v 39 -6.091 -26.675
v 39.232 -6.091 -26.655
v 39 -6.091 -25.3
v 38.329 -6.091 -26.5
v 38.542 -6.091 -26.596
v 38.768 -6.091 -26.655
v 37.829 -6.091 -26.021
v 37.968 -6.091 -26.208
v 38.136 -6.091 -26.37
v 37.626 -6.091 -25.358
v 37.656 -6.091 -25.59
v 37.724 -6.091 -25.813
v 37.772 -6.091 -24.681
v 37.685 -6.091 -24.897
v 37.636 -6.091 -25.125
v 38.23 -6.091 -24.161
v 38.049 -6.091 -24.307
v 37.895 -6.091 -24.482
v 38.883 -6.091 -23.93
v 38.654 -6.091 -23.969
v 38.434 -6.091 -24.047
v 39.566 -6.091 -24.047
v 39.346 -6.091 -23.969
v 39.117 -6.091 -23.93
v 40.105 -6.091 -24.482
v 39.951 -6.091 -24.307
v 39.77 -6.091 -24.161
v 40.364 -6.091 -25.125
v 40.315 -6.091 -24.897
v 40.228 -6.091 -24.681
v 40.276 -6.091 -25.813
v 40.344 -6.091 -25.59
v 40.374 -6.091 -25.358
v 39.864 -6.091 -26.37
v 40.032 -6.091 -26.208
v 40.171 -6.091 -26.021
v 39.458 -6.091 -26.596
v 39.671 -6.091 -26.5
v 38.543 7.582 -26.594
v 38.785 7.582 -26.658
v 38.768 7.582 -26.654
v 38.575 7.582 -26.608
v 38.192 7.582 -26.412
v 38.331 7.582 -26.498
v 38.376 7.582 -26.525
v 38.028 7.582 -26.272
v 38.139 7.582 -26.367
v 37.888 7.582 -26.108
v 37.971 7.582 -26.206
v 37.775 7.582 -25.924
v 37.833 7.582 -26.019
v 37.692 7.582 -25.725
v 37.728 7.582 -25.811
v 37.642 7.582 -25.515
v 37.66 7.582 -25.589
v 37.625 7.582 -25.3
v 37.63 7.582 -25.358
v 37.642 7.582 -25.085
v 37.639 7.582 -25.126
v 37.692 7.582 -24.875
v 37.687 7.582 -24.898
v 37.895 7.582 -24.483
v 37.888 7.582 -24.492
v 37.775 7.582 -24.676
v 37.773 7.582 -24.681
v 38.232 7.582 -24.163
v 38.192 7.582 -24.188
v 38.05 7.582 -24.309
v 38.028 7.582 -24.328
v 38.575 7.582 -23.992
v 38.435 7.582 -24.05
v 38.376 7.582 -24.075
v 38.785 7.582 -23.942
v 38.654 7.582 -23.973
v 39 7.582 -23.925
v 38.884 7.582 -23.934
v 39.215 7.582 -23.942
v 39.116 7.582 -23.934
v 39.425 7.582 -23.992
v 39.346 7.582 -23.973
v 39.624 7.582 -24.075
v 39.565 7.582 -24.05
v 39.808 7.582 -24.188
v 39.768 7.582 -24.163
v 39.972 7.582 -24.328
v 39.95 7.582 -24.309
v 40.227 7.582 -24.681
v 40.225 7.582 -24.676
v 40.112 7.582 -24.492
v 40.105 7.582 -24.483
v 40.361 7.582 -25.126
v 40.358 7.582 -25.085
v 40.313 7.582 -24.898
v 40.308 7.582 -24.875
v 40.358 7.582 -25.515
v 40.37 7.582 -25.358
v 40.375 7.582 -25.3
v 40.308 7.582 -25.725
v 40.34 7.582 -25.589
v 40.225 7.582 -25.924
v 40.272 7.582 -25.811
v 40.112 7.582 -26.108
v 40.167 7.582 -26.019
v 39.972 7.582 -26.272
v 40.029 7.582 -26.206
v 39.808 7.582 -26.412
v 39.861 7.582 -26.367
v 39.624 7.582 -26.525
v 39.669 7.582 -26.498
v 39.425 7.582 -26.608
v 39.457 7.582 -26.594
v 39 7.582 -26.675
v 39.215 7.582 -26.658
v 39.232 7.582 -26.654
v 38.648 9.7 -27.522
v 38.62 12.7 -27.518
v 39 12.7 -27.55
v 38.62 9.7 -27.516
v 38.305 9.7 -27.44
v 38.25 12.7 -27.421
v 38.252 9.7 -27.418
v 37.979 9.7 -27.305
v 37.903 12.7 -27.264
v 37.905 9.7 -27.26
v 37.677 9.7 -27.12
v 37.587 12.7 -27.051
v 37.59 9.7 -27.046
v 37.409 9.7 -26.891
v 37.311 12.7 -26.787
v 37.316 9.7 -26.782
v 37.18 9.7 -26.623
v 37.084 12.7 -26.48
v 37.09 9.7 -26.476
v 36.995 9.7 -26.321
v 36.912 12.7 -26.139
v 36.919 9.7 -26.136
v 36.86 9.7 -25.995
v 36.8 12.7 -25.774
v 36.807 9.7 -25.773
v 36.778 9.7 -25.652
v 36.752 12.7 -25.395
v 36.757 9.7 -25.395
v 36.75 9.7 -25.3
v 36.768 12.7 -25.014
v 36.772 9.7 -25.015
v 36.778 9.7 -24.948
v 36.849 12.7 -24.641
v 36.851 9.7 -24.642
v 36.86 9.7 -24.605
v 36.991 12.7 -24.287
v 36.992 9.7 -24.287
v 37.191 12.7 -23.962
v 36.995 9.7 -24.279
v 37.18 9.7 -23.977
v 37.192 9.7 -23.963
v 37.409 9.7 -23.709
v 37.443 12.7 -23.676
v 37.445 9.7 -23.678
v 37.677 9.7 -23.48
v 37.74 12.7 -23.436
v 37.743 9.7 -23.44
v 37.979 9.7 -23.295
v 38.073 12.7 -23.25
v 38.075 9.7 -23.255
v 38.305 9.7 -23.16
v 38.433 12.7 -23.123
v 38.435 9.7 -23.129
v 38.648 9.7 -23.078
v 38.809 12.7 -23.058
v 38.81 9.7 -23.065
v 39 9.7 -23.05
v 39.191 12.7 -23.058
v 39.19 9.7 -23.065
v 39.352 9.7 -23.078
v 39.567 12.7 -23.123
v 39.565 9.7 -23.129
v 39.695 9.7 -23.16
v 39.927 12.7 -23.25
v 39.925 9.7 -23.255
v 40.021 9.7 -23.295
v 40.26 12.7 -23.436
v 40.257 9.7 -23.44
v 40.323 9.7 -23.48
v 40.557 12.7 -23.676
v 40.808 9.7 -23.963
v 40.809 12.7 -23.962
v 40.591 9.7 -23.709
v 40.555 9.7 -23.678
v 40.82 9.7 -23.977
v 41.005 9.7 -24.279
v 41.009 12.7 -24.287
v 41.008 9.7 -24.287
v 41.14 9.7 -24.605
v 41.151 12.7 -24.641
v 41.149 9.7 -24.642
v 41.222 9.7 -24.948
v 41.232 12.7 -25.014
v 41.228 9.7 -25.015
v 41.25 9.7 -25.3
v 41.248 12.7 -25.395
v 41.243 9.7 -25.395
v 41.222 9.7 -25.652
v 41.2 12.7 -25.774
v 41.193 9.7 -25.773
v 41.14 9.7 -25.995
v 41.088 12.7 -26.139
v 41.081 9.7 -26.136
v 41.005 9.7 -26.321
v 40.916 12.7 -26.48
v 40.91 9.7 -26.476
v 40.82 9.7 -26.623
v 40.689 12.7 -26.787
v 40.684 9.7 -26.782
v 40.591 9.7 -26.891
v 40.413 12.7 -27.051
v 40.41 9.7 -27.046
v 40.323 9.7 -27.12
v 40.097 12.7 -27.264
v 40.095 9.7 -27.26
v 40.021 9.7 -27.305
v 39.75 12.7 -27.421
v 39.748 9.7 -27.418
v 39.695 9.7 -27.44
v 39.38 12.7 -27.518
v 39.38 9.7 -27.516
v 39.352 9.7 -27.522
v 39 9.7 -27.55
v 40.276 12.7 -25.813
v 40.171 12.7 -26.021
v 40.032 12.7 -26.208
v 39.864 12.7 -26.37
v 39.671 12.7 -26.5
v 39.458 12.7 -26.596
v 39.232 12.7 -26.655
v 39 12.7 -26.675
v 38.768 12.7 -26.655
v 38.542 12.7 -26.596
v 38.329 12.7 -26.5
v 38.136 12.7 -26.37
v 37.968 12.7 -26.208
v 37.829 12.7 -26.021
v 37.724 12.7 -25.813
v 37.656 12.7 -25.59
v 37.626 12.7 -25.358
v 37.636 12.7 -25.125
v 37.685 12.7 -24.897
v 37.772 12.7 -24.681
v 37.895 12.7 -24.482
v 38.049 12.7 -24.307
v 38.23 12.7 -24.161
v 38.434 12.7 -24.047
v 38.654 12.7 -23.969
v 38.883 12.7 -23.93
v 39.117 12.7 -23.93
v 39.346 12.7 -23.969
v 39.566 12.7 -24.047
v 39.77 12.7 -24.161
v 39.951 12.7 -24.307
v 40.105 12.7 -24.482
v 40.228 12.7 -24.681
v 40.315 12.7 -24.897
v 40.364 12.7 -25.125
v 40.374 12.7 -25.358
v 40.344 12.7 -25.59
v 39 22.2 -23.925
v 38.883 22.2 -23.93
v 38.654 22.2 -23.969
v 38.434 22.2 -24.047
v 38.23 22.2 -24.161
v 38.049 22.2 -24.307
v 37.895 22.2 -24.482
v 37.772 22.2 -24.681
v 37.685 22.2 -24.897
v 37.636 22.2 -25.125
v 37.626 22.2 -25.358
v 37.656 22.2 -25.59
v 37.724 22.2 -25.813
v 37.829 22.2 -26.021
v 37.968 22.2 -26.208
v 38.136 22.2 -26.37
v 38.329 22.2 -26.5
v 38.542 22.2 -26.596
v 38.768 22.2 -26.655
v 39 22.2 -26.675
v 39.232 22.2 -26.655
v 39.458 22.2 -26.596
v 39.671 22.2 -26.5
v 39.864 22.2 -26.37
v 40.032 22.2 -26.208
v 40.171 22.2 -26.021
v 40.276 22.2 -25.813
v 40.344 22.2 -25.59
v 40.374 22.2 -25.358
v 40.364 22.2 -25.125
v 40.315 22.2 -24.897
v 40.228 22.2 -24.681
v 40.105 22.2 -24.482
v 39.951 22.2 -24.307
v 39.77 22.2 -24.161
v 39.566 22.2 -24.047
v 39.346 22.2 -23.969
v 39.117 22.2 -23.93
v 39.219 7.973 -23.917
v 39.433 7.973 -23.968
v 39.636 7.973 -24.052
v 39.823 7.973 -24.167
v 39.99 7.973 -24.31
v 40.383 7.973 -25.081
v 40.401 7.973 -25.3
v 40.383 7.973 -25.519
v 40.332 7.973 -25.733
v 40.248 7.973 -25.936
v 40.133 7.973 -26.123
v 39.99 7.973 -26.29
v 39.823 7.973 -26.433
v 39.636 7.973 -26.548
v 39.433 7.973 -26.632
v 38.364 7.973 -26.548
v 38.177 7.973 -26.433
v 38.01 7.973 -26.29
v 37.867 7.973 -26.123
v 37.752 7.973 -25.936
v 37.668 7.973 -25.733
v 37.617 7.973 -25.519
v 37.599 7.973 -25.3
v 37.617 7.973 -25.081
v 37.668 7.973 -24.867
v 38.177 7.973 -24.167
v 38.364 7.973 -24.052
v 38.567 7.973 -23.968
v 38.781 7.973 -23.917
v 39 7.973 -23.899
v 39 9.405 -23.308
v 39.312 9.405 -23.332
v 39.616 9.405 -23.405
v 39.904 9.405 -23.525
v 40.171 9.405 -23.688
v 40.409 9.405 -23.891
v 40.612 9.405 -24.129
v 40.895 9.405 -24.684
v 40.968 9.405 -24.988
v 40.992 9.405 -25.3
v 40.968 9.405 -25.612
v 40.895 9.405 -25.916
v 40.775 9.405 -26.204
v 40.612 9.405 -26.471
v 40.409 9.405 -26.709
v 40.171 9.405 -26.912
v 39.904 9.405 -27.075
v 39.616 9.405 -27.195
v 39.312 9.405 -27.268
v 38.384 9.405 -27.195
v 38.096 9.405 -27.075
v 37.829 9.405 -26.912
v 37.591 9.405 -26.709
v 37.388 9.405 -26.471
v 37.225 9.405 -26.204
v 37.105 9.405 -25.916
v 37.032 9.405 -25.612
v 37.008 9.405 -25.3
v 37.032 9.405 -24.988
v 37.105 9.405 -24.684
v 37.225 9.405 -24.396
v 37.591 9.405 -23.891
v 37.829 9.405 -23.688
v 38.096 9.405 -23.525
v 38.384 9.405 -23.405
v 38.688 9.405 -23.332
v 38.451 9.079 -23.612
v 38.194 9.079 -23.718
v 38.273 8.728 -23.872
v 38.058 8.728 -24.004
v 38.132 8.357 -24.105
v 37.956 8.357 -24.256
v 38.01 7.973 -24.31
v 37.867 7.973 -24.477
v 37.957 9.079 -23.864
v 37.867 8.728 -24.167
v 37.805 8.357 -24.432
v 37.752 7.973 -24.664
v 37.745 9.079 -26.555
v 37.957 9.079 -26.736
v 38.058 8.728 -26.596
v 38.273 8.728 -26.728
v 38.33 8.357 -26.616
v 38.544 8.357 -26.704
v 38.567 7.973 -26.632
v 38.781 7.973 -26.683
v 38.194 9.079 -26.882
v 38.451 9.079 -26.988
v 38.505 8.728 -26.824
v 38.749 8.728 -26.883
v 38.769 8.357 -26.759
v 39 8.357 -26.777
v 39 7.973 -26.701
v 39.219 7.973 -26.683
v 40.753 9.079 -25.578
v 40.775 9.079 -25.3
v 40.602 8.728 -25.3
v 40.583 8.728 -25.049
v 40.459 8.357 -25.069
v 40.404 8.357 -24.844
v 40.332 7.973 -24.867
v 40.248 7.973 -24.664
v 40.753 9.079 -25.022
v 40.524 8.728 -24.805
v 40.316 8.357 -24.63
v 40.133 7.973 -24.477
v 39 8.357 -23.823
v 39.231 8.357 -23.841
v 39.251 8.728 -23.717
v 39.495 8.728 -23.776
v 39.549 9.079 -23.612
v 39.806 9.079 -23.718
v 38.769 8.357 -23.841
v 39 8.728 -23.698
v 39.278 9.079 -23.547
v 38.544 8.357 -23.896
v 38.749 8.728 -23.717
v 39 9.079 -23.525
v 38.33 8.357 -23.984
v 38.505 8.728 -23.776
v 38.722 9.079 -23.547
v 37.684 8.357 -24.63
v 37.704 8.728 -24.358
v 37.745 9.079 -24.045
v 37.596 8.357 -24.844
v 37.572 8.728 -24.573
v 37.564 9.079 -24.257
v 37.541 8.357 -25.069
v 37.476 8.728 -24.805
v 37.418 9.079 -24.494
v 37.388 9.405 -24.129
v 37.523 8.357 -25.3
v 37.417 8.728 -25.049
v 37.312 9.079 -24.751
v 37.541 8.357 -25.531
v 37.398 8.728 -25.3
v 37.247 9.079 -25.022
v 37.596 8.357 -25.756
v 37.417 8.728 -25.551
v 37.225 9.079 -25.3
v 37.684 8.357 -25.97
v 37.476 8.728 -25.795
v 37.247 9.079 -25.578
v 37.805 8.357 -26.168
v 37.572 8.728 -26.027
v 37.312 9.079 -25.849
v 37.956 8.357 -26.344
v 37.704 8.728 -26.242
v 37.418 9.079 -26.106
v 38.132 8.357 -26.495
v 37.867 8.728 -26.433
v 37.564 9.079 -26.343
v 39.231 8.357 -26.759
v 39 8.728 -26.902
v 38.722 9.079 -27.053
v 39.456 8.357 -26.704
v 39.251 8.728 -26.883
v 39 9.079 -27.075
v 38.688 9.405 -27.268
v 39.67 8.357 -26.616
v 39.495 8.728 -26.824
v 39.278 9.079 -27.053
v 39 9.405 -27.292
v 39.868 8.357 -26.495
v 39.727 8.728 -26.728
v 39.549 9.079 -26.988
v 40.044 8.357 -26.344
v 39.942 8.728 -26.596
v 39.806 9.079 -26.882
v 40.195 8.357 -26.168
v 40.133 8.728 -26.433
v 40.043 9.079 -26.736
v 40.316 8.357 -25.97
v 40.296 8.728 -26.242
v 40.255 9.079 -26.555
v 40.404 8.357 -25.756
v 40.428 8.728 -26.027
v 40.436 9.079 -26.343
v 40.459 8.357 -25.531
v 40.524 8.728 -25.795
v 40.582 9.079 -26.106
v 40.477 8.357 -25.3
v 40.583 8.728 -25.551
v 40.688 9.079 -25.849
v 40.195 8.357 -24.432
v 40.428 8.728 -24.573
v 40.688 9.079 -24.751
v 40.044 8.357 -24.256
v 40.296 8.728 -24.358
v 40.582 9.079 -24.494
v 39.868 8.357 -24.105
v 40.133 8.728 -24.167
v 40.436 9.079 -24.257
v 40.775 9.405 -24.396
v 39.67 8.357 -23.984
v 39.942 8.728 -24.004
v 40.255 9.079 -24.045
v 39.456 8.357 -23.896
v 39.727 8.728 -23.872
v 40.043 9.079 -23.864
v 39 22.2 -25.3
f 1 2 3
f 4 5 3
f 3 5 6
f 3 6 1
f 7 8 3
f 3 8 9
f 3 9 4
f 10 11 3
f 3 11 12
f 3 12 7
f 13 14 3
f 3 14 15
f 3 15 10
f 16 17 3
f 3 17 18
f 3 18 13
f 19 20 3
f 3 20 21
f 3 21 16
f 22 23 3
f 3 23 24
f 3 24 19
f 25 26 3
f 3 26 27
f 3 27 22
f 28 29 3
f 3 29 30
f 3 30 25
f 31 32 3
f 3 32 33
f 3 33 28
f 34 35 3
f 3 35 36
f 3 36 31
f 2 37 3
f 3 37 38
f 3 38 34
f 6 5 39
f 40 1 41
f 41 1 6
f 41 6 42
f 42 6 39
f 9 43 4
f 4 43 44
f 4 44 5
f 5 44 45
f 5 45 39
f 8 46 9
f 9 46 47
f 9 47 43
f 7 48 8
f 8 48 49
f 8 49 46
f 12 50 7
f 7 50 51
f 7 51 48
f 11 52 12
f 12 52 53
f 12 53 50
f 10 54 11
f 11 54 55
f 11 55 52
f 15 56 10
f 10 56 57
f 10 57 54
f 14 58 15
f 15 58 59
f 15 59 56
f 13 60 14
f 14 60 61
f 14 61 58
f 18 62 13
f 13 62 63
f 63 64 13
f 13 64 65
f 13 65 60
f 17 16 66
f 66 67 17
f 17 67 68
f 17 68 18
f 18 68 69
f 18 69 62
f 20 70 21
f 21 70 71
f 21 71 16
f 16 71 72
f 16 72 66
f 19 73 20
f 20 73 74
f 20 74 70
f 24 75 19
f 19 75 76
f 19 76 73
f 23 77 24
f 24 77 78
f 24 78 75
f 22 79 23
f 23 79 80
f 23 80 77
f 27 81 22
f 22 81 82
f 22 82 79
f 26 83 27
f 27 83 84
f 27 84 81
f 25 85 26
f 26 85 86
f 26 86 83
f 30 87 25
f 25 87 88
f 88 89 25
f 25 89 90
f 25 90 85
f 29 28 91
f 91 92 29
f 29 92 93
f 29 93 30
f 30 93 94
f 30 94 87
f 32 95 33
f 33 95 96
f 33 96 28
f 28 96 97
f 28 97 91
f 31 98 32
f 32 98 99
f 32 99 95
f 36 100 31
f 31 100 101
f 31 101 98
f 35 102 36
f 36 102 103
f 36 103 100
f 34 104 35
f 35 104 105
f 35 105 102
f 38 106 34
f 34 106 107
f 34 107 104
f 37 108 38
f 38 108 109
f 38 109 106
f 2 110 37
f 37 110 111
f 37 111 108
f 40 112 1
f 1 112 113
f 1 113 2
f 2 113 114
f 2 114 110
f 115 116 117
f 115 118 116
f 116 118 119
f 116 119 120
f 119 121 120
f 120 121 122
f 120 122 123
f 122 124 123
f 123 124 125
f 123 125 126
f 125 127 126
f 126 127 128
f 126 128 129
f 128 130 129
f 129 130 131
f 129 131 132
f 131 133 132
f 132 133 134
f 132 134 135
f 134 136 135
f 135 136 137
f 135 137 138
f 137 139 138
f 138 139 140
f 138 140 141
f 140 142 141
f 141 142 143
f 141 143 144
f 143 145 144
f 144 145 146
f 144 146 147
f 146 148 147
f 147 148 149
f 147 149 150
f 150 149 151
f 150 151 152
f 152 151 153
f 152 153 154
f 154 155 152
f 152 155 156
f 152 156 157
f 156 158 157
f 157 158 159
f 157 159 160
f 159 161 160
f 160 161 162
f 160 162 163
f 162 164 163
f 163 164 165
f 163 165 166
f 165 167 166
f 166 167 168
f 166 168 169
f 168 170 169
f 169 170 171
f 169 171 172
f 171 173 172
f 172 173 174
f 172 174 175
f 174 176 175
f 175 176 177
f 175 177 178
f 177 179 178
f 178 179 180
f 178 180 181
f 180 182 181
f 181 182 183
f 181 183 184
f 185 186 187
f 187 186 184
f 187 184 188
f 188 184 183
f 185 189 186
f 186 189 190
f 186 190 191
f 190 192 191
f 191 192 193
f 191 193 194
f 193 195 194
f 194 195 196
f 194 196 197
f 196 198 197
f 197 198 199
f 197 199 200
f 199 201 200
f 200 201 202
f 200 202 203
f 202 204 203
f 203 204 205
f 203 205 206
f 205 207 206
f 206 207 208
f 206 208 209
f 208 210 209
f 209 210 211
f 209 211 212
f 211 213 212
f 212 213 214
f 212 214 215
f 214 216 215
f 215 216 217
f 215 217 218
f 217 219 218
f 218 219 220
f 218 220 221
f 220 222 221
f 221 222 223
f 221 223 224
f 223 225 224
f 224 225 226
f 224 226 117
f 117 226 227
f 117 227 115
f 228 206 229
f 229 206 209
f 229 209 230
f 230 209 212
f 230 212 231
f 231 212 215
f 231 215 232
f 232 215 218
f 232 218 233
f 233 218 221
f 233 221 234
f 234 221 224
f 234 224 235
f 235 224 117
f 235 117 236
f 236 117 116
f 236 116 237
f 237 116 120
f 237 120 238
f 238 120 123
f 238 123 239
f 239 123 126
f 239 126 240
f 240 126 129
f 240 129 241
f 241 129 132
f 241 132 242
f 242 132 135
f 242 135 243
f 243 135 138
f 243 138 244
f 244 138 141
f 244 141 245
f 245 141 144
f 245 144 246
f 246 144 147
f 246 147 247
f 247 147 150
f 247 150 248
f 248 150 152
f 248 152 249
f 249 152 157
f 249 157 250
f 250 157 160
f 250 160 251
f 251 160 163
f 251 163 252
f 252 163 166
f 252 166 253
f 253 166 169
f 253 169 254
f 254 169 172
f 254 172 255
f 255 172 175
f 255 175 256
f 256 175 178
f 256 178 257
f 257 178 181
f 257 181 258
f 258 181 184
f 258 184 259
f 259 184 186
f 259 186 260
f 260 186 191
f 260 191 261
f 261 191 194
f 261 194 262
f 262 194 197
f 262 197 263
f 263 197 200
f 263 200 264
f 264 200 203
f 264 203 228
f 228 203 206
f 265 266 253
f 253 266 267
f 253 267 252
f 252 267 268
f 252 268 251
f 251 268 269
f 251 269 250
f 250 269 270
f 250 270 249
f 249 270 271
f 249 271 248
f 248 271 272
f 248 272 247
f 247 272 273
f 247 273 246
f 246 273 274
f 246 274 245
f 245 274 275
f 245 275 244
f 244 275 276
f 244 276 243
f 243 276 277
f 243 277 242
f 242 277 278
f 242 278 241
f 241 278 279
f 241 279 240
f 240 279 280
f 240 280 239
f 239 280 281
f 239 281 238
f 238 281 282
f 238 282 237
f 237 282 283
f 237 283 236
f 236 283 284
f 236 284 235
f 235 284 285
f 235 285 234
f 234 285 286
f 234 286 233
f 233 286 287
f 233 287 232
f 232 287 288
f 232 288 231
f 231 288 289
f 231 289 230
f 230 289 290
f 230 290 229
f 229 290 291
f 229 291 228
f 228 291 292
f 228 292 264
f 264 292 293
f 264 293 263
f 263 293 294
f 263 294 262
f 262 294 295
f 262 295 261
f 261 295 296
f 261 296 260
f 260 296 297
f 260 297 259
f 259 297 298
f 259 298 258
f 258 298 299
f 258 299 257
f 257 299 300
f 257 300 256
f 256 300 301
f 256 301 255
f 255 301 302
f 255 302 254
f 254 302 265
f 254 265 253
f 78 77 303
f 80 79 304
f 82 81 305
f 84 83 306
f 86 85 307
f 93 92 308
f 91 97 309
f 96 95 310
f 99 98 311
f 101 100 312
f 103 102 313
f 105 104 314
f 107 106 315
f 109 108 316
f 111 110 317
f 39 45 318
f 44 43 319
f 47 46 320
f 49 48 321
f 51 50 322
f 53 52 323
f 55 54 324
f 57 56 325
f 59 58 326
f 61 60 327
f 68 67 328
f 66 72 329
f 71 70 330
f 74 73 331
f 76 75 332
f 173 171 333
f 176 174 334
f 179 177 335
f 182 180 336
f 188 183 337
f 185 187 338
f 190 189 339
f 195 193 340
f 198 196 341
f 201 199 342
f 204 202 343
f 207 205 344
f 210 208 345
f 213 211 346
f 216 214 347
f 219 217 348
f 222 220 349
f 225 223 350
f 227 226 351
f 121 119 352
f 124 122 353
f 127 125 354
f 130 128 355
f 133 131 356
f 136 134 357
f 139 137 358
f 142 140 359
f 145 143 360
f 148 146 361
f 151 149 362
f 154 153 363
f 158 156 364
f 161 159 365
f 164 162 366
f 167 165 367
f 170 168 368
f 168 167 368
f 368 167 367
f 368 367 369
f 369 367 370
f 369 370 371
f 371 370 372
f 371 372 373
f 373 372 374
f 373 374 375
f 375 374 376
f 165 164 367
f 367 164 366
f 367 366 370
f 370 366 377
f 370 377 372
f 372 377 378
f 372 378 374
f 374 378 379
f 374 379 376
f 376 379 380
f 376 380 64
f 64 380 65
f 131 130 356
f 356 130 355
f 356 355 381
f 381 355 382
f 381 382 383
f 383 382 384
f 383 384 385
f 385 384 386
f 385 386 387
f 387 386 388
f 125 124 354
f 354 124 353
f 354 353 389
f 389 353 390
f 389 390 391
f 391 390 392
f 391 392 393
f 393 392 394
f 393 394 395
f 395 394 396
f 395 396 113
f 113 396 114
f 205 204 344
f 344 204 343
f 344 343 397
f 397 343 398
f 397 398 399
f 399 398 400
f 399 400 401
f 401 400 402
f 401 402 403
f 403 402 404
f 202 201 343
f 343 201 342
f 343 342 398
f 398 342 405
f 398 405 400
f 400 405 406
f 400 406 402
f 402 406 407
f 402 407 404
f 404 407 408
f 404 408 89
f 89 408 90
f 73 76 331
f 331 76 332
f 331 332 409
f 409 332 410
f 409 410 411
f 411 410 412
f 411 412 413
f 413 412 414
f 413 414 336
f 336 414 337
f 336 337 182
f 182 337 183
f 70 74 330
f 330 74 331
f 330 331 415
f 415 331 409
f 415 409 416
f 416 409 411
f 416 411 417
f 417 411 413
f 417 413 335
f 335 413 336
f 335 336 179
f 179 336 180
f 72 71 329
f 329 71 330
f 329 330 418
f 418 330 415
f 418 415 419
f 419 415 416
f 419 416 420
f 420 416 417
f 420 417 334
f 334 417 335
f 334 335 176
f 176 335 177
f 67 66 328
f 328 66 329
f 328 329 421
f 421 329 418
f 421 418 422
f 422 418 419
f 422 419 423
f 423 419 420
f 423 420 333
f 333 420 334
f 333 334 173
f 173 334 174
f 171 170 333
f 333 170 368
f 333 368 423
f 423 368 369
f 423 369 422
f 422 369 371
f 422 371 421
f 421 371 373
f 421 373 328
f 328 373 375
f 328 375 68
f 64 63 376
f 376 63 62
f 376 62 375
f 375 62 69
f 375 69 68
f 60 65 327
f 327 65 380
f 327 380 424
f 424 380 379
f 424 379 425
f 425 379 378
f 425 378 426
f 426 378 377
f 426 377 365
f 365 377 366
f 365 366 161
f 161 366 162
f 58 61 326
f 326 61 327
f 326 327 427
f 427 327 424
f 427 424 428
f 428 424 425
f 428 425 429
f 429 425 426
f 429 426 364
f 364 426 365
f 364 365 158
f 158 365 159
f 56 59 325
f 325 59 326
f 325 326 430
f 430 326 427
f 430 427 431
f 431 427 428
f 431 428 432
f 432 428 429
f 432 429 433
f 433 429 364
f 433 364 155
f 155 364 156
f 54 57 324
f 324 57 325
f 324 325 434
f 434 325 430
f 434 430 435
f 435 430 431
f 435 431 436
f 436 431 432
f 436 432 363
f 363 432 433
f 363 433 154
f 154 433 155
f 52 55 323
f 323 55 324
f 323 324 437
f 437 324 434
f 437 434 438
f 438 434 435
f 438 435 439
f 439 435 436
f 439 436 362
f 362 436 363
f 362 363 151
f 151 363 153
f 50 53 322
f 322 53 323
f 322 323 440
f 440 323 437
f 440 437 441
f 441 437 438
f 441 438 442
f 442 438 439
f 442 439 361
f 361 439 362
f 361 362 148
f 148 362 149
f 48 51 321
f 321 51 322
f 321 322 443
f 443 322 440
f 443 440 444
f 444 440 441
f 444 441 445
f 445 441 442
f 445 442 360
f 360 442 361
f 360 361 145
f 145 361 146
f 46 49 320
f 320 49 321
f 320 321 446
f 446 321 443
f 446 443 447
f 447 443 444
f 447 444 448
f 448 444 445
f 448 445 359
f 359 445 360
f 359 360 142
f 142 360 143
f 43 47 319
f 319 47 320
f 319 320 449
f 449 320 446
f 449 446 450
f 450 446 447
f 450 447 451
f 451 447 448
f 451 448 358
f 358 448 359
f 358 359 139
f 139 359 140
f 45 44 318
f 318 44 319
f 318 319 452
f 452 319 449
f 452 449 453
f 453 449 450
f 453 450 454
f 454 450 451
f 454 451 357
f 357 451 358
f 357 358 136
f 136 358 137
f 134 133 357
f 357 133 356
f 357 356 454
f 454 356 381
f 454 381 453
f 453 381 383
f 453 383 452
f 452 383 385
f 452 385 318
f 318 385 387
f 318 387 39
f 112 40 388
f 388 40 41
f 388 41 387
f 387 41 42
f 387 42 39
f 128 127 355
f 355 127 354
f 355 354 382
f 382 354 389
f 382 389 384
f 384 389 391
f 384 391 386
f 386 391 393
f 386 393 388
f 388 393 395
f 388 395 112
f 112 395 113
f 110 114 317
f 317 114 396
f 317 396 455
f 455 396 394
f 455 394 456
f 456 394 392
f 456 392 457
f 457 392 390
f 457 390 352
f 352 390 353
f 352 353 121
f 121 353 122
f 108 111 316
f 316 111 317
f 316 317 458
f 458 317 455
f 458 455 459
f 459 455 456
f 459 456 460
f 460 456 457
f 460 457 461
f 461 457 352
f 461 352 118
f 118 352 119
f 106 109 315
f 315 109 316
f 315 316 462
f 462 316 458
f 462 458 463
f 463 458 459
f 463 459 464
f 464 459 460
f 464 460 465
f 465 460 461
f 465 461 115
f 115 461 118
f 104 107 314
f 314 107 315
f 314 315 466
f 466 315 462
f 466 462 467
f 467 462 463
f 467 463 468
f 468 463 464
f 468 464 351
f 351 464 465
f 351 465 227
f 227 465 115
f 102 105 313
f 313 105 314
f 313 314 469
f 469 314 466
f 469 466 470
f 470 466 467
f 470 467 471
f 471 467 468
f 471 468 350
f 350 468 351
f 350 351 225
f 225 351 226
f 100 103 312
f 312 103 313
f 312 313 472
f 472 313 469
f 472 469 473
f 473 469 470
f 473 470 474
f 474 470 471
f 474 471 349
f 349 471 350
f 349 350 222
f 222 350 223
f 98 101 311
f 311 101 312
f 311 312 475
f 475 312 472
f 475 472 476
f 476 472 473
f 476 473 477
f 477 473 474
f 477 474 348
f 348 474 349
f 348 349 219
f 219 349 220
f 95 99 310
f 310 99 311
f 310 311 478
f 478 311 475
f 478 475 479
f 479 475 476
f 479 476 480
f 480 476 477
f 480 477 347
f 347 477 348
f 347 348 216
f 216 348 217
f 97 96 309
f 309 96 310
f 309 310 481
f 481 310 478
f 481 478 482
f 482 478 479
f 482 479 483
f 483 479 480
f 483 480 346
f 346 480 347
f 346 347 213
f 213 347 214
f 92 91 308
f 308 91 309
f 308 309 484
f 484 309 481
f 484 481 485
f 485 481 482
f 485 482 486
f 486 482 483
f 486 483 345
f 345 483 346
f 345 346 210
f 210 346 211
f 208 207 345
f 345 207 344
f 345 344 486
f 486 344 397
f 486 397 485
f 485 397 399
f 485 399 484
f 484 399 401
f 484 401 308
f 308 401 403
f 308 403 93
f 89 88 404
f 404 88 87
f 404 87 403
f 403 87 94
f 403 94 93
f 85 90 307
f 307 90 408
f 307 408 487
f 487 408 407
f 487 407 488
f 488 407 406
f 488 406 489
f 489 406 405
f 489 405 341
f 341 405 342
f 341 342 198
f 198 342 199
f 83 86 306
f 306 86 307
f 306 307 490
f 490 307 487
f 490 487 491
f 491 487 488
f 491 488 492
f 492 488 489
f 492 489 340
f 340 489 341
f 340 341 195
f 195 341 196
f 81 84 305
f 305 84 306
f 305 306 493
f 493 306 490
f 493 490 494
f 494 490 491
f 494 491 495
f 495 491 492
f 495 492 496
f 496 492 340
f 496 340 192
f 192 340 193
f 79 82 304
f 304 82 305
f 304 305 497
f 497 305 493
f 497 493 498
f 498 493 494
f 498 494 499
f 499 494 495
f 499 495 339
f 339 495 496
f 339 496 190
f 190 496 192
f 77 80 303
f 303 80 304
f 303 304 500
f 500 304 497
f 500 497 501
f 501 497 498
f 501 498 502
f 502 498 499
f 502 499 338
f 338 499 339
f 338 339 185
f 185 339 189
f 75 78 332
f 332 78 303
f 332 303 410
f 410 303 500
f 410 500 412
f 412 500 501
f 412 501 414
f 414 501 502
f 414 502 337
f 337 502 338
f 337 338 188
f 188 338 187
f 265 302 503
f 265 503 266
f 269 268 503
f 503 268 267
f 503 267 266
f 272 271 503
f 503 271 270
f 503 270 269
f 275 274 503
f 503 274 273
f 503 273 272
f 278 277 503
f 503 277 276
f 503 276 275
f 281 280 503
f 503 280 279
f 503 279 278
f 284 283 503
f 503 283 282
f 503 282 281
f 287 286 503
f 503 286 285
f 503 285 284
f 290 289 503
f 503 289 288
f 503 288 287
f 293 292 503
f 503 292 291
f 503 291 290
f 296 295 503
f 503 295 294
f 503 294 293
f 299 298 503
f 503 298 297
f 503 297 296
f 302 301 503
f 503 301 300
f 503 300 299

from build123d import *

# Parameters (mm, degrees)
FILLET_1_R      = 3
SKETCH_3_R      = 1.375
EXTRUDE_2_DEPTH = 2.5


with BuildPart() as part:
    # Эскиз1 → Повернуть1 (revolve)
    with BuildSketch(Plane(origin=(0, 0, -25.3000002), x_dir=(-1, 0, 0), z_dir=(0, 0, -1)), mode=Mode.PRIVATE) as revolve_1_sk:
        Polygon((-39.00000074, -6.09116098), (-39.00000074, 19.69999898), (-40.37500074, 19.69999898), (-40.37500074, 12.69999898), (-41.25000074, 12.69999898), (-41.25000074, 9.69999898), (-40.37500074, 9.69999898), (-40.37500074, -6.09116098), align=None)
    revolve(revolve_1_sk.sketch.rotate(Axis((39.00000074, -6.09116098, -25.3000002), (0, 1, 0)), 90), axis=Axis((39.00000074, -6.09116098, -25.3000002), (0, 1, 0)))

    # Скругление1
    # the kernel refuses this fillet: 3 mm, written as the material it adds along each edge
    with BuildSketch(Plane(origin=(39.00000074, 9.69999898, -25.3000002), x_dir=(0, 0, -1), z_dir=(1, 0, 0))) as fillet_1_piece_1:
        with BuildLine():
            CenterArc((4.375, -2.117634293), FILLET_1_R, 135.099472039, 44.900527961)
            Line((1.375, -2.117634293), (1.315, -2.117634293))
            Line((1.315, -2.117634293), (1.315, 0))
            Line((1.315, 0), (1.375, 0.06))
            ThreePointArc((1.375, 0.06), (1.8125, 0.06), (2.2075, 0.042352686))
            Line((2.2075, 0.042352686), (2.25, 0))
        make_face()
    revolve(axis=Axis((39.00000074, 9.69999898, -25.3000002), (0, 1, 0)))

    # Эскиз3 → Бобышка-Вытянуть2 (add)
    with BuildSketch(Plane(origin=(0, 19.69999898, 0), x_dir=(1, 0, 0), z_dir=(0, 1, 0))):
        with Locations(Location((39.00000074, 25.3000002, 0), (0, 0, 90))):
            Circle(SKETCH_3_R)
    extrude(amount=EXTRUDE_2_DEPTH)


solid = part.part
